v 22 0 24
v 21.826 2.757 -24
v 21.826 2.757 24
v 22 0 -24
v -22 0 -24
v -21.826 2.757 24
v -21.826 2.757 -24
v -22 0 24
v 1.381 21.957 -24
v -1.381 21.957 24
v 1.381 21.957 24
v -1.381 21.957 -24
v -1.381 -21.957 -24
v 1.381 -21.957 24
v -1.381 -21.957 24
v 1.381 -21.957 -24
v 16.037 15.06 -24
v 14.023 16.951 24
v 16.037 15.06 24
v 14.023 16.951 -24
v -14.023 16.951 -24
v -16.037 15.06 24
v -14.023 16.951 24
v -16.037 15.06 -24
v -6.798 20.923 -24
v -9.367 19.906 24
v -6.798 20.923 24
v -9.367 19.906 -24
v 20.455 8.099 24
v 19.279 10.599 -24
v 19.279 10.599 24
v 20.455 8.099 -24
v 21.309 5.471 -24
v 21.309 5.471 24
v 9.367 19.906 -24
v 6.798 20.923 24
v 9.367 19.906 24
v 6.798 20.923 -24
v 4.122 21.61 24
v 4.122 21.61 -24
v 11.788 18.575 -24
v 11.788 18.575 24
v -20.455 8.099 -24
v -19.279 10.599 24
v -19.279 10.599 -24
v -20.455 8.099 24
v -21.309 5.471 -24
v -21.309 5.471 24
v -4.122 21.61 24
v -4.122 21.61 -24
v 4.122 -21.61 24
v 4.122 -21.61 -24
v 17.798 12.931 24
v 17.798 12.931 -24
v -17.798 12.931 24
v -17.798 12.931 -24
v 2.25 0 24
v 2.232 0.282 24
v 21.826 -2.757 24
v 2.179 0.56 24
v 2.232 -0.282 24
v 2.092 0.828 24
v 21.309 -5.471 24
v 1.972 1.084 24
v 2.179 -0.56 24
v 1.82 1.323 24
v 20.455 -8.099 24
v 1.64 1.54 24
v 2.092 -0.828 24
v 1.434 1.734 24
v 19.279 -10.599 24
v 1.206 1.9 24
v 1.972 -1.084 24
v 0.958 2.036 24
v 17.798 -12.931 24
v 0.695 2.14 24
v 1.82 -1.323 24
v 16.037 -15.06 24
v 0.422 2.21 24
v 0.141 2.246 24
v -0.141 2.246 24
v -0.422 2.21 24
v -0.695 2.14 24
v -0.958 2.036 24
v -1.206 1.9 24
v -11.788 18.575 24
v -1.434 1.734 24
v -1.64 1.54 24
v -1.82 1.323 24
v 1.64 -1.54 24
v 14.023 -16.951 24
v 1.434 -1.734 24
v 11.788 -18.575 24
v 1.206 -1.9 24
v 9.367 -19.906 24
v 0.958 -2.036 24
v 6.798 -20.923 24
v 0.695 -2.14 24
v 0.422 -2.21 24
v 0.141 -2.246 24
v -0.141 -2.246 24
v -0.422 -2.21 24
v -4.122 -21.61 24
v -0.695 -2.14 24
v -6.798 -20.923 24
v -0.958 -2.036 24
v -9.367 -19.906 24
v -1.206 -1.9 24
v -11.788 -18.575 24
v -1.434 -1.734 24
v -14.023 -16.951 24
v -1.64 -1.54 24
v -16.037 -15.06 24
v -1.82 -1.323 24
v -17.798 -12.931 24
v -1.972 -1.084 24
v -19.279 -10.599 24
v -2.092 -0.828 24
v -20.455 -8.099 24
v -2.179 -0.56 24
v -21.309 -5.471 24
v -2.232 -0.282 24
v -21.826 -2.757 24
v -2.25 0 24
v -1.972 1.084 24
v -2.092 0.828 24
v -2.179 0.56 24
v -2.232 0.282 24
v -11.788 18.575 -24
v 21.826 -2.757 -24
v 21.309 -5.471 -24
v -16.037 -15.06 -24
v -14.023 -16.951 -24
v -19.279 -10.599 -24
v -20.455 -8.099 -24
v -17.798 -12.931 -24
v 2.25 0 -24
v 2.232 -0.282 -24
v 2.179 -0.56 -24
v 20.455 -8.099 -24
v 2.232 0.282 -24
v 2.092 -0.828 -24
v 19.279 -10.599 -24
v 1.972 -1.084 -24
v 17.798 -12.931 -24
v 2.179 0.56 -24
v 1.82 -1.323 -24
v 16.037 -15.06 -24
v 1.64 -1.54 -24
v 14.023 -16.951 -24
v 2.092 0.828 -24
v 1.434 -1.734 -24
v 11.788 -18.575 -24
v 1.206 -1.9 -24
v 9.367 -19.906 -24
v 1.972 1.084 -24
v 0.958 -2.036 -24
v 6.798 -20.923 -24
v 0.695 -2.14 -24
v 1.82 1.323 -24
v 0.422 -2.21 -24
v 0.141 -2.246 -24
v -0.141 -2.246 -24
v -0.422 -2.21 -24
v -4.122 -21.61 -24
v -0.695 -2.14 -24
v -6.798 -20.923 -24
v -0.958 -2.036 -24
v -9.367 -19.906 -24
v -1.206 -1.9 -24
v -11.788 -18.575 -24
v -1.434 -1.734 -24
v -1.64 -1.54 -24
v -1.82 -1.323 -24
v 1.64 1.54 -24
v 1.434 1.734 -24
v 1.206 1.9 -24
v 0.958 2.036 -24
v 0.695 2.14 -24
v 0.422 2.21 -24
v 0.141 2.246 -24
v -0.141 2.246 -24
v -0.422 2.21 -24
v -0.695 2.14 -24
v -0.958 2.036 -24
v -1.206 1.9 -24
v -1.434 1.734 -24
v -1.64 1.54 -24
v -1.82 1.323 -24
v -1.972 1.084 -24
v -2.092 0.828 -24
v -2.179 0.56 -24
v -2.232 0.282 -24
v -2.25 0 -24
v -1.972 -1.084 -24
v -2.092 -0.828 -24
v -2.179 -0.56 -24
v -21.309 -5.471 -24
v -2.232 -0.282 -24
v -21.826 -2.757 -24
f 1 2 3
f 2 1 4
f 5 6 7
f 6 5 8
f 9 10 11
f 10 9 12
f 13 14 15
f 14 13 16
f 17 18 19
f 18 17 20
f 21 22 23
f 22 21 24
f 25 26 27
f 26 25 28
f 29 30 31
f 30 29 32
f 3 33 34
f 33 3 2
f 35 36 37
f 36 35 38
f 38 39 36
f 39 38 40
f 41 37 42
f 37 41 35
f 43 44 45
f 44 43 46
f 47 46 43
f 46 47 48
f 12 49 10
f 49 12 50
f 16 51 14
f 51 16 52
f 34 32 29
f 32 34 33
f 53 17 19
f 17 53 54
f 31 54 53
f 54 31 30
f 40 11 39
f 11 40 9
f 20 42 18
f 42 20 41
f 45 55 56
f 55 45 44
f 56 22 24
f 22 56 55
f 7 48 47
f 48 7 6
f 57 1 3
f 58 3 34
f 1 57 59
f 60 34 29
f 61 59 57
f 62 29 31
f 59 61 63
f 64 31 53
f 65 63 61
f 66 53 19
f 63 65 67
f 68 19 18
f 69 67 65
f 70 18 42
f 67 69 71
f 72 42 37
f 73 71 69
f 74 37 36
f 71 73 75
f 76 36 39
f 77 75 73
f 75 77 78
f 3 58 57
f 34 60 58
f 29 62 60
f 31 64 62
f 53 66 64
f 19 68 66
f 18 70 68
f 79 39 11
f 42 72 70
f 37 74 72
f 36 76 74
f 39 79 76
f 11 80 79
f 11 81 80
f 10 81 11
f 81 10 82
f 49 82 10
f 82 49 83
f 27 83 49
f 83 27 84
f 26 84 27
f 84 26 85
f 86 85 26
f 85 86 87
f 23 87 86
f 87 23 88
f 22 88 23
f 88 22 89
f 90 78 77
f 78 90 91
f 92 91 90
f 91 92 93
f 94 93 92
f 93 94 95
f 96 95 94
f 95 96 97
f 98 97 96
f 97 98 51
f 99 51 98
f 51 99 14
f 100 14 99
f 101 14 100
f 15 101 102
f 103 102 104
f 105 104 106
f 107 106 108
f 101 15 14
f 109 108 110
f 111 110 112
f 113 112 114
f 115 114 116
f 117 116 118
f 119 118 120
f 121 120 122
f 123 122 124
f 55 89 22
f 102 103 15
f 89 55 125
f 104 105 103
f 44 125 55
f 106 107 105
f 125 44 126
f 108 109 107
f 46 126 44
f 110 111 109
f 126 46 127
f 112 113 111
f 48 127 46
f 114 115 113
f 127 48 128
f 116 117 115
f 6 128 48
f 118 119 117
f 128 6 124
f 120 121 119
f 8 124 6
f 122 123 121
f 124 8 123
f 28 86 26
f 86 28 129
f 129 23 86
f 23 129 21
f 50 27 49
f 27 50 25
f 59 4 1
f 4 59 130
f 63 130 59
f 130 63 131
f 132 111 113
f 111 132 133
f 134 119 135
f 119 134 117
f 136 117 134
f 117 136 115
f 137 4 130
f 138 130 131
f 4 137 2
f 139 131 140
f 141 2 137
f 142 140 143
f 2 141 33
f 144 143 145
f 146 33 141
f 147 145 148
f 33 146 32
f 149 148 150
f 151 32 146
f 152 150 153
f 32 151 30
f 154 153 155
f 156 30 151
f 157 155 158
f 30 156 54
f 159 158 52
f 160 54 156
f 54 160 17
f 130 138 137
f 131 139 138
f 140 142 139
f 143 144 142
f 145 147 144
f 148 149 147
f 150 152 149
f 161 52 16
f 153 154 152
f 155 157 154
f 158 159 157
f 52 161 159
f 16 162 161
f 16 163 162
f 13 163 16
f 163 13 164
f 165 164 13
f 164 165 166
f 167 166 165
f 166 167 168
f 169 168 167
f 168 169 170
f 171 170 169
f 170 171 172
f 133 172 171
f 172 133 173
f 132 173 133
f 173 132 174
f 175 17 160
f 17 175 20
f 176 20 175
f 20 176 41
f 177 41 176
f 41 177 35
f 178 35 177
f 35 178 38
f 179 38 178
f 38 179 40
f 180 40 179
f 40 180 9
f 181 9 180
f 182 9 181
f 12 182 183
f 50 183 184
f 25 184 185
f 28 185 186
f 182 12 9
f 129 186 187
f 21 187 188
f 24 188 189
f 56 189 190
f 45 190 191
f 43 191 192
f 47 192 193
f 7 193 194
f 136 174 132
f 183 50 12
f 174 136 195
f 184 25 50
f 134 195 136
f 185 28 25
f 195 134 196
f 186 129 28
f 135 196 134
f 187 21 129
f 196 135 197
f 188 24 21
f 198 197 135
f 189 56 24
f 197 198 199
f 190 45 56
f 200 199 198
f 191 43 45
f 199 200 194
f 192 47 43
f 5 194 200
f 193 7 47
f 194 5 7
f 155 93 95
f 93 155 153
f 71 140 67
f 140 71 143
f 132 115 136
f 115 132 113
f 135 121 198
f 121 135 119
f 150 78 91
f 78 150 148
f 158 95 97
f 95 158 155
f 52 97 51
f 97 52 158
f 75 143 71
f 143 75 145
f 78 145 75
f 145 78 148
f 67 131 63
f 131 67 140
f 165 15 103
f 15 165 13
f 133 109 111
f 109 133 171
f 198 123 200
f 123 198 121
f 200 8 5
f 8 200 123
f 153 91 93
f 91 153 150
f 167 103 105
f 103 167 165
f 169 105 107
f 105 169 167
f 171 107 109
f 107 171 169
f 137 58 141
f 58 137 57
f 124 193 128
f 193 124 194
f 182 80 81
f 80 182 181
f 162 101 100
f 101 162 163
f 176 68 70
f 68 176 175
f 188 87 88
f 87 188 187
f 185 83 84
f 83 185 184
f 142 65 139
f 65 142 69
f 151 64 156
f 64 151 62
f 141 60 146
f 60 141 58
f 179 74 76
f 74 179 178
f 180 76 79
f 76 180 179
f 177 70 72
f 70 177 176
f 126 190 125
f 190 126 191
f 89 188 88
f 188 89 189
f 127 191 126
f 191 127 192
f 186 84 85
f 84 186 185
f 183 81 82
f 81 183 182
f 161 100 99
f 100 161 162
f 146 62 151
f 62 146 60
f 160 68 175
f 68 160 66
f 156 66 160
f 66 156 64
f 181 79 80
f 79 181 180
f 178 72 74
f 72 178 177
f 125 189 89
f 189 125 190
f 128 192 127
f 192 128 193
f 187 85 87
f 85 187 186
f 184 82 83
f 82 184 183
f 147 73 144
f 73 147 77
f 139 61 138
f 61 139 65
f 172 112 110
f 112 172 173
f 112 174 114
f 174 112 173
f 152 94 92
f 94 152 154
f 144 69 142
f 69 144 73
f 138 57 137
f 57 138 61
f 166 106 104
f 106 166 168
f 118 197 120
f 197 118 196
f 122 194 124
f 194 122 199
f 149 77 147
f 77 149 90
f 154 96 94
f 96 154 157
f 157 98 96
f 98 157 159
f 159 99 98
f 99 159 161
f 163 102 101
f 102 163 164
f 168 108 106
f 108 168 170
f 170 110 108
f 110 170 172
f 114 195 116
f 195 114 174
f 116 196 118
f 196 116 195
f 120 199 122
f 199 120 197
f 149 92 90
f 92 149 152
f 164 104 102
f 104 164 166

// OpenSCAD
$fn = 50;


difference() {
	union() {
		translate(v = [0, 0, -24.0000000000]) {
			cylinder(h = 48, r = 22.0000000000);
		}
	}
	union() {
		translate(v = [0, 0, -100.0000000000]) {
			cylinder(h = 200, r = 2.2500000000);
		}
	}
}
